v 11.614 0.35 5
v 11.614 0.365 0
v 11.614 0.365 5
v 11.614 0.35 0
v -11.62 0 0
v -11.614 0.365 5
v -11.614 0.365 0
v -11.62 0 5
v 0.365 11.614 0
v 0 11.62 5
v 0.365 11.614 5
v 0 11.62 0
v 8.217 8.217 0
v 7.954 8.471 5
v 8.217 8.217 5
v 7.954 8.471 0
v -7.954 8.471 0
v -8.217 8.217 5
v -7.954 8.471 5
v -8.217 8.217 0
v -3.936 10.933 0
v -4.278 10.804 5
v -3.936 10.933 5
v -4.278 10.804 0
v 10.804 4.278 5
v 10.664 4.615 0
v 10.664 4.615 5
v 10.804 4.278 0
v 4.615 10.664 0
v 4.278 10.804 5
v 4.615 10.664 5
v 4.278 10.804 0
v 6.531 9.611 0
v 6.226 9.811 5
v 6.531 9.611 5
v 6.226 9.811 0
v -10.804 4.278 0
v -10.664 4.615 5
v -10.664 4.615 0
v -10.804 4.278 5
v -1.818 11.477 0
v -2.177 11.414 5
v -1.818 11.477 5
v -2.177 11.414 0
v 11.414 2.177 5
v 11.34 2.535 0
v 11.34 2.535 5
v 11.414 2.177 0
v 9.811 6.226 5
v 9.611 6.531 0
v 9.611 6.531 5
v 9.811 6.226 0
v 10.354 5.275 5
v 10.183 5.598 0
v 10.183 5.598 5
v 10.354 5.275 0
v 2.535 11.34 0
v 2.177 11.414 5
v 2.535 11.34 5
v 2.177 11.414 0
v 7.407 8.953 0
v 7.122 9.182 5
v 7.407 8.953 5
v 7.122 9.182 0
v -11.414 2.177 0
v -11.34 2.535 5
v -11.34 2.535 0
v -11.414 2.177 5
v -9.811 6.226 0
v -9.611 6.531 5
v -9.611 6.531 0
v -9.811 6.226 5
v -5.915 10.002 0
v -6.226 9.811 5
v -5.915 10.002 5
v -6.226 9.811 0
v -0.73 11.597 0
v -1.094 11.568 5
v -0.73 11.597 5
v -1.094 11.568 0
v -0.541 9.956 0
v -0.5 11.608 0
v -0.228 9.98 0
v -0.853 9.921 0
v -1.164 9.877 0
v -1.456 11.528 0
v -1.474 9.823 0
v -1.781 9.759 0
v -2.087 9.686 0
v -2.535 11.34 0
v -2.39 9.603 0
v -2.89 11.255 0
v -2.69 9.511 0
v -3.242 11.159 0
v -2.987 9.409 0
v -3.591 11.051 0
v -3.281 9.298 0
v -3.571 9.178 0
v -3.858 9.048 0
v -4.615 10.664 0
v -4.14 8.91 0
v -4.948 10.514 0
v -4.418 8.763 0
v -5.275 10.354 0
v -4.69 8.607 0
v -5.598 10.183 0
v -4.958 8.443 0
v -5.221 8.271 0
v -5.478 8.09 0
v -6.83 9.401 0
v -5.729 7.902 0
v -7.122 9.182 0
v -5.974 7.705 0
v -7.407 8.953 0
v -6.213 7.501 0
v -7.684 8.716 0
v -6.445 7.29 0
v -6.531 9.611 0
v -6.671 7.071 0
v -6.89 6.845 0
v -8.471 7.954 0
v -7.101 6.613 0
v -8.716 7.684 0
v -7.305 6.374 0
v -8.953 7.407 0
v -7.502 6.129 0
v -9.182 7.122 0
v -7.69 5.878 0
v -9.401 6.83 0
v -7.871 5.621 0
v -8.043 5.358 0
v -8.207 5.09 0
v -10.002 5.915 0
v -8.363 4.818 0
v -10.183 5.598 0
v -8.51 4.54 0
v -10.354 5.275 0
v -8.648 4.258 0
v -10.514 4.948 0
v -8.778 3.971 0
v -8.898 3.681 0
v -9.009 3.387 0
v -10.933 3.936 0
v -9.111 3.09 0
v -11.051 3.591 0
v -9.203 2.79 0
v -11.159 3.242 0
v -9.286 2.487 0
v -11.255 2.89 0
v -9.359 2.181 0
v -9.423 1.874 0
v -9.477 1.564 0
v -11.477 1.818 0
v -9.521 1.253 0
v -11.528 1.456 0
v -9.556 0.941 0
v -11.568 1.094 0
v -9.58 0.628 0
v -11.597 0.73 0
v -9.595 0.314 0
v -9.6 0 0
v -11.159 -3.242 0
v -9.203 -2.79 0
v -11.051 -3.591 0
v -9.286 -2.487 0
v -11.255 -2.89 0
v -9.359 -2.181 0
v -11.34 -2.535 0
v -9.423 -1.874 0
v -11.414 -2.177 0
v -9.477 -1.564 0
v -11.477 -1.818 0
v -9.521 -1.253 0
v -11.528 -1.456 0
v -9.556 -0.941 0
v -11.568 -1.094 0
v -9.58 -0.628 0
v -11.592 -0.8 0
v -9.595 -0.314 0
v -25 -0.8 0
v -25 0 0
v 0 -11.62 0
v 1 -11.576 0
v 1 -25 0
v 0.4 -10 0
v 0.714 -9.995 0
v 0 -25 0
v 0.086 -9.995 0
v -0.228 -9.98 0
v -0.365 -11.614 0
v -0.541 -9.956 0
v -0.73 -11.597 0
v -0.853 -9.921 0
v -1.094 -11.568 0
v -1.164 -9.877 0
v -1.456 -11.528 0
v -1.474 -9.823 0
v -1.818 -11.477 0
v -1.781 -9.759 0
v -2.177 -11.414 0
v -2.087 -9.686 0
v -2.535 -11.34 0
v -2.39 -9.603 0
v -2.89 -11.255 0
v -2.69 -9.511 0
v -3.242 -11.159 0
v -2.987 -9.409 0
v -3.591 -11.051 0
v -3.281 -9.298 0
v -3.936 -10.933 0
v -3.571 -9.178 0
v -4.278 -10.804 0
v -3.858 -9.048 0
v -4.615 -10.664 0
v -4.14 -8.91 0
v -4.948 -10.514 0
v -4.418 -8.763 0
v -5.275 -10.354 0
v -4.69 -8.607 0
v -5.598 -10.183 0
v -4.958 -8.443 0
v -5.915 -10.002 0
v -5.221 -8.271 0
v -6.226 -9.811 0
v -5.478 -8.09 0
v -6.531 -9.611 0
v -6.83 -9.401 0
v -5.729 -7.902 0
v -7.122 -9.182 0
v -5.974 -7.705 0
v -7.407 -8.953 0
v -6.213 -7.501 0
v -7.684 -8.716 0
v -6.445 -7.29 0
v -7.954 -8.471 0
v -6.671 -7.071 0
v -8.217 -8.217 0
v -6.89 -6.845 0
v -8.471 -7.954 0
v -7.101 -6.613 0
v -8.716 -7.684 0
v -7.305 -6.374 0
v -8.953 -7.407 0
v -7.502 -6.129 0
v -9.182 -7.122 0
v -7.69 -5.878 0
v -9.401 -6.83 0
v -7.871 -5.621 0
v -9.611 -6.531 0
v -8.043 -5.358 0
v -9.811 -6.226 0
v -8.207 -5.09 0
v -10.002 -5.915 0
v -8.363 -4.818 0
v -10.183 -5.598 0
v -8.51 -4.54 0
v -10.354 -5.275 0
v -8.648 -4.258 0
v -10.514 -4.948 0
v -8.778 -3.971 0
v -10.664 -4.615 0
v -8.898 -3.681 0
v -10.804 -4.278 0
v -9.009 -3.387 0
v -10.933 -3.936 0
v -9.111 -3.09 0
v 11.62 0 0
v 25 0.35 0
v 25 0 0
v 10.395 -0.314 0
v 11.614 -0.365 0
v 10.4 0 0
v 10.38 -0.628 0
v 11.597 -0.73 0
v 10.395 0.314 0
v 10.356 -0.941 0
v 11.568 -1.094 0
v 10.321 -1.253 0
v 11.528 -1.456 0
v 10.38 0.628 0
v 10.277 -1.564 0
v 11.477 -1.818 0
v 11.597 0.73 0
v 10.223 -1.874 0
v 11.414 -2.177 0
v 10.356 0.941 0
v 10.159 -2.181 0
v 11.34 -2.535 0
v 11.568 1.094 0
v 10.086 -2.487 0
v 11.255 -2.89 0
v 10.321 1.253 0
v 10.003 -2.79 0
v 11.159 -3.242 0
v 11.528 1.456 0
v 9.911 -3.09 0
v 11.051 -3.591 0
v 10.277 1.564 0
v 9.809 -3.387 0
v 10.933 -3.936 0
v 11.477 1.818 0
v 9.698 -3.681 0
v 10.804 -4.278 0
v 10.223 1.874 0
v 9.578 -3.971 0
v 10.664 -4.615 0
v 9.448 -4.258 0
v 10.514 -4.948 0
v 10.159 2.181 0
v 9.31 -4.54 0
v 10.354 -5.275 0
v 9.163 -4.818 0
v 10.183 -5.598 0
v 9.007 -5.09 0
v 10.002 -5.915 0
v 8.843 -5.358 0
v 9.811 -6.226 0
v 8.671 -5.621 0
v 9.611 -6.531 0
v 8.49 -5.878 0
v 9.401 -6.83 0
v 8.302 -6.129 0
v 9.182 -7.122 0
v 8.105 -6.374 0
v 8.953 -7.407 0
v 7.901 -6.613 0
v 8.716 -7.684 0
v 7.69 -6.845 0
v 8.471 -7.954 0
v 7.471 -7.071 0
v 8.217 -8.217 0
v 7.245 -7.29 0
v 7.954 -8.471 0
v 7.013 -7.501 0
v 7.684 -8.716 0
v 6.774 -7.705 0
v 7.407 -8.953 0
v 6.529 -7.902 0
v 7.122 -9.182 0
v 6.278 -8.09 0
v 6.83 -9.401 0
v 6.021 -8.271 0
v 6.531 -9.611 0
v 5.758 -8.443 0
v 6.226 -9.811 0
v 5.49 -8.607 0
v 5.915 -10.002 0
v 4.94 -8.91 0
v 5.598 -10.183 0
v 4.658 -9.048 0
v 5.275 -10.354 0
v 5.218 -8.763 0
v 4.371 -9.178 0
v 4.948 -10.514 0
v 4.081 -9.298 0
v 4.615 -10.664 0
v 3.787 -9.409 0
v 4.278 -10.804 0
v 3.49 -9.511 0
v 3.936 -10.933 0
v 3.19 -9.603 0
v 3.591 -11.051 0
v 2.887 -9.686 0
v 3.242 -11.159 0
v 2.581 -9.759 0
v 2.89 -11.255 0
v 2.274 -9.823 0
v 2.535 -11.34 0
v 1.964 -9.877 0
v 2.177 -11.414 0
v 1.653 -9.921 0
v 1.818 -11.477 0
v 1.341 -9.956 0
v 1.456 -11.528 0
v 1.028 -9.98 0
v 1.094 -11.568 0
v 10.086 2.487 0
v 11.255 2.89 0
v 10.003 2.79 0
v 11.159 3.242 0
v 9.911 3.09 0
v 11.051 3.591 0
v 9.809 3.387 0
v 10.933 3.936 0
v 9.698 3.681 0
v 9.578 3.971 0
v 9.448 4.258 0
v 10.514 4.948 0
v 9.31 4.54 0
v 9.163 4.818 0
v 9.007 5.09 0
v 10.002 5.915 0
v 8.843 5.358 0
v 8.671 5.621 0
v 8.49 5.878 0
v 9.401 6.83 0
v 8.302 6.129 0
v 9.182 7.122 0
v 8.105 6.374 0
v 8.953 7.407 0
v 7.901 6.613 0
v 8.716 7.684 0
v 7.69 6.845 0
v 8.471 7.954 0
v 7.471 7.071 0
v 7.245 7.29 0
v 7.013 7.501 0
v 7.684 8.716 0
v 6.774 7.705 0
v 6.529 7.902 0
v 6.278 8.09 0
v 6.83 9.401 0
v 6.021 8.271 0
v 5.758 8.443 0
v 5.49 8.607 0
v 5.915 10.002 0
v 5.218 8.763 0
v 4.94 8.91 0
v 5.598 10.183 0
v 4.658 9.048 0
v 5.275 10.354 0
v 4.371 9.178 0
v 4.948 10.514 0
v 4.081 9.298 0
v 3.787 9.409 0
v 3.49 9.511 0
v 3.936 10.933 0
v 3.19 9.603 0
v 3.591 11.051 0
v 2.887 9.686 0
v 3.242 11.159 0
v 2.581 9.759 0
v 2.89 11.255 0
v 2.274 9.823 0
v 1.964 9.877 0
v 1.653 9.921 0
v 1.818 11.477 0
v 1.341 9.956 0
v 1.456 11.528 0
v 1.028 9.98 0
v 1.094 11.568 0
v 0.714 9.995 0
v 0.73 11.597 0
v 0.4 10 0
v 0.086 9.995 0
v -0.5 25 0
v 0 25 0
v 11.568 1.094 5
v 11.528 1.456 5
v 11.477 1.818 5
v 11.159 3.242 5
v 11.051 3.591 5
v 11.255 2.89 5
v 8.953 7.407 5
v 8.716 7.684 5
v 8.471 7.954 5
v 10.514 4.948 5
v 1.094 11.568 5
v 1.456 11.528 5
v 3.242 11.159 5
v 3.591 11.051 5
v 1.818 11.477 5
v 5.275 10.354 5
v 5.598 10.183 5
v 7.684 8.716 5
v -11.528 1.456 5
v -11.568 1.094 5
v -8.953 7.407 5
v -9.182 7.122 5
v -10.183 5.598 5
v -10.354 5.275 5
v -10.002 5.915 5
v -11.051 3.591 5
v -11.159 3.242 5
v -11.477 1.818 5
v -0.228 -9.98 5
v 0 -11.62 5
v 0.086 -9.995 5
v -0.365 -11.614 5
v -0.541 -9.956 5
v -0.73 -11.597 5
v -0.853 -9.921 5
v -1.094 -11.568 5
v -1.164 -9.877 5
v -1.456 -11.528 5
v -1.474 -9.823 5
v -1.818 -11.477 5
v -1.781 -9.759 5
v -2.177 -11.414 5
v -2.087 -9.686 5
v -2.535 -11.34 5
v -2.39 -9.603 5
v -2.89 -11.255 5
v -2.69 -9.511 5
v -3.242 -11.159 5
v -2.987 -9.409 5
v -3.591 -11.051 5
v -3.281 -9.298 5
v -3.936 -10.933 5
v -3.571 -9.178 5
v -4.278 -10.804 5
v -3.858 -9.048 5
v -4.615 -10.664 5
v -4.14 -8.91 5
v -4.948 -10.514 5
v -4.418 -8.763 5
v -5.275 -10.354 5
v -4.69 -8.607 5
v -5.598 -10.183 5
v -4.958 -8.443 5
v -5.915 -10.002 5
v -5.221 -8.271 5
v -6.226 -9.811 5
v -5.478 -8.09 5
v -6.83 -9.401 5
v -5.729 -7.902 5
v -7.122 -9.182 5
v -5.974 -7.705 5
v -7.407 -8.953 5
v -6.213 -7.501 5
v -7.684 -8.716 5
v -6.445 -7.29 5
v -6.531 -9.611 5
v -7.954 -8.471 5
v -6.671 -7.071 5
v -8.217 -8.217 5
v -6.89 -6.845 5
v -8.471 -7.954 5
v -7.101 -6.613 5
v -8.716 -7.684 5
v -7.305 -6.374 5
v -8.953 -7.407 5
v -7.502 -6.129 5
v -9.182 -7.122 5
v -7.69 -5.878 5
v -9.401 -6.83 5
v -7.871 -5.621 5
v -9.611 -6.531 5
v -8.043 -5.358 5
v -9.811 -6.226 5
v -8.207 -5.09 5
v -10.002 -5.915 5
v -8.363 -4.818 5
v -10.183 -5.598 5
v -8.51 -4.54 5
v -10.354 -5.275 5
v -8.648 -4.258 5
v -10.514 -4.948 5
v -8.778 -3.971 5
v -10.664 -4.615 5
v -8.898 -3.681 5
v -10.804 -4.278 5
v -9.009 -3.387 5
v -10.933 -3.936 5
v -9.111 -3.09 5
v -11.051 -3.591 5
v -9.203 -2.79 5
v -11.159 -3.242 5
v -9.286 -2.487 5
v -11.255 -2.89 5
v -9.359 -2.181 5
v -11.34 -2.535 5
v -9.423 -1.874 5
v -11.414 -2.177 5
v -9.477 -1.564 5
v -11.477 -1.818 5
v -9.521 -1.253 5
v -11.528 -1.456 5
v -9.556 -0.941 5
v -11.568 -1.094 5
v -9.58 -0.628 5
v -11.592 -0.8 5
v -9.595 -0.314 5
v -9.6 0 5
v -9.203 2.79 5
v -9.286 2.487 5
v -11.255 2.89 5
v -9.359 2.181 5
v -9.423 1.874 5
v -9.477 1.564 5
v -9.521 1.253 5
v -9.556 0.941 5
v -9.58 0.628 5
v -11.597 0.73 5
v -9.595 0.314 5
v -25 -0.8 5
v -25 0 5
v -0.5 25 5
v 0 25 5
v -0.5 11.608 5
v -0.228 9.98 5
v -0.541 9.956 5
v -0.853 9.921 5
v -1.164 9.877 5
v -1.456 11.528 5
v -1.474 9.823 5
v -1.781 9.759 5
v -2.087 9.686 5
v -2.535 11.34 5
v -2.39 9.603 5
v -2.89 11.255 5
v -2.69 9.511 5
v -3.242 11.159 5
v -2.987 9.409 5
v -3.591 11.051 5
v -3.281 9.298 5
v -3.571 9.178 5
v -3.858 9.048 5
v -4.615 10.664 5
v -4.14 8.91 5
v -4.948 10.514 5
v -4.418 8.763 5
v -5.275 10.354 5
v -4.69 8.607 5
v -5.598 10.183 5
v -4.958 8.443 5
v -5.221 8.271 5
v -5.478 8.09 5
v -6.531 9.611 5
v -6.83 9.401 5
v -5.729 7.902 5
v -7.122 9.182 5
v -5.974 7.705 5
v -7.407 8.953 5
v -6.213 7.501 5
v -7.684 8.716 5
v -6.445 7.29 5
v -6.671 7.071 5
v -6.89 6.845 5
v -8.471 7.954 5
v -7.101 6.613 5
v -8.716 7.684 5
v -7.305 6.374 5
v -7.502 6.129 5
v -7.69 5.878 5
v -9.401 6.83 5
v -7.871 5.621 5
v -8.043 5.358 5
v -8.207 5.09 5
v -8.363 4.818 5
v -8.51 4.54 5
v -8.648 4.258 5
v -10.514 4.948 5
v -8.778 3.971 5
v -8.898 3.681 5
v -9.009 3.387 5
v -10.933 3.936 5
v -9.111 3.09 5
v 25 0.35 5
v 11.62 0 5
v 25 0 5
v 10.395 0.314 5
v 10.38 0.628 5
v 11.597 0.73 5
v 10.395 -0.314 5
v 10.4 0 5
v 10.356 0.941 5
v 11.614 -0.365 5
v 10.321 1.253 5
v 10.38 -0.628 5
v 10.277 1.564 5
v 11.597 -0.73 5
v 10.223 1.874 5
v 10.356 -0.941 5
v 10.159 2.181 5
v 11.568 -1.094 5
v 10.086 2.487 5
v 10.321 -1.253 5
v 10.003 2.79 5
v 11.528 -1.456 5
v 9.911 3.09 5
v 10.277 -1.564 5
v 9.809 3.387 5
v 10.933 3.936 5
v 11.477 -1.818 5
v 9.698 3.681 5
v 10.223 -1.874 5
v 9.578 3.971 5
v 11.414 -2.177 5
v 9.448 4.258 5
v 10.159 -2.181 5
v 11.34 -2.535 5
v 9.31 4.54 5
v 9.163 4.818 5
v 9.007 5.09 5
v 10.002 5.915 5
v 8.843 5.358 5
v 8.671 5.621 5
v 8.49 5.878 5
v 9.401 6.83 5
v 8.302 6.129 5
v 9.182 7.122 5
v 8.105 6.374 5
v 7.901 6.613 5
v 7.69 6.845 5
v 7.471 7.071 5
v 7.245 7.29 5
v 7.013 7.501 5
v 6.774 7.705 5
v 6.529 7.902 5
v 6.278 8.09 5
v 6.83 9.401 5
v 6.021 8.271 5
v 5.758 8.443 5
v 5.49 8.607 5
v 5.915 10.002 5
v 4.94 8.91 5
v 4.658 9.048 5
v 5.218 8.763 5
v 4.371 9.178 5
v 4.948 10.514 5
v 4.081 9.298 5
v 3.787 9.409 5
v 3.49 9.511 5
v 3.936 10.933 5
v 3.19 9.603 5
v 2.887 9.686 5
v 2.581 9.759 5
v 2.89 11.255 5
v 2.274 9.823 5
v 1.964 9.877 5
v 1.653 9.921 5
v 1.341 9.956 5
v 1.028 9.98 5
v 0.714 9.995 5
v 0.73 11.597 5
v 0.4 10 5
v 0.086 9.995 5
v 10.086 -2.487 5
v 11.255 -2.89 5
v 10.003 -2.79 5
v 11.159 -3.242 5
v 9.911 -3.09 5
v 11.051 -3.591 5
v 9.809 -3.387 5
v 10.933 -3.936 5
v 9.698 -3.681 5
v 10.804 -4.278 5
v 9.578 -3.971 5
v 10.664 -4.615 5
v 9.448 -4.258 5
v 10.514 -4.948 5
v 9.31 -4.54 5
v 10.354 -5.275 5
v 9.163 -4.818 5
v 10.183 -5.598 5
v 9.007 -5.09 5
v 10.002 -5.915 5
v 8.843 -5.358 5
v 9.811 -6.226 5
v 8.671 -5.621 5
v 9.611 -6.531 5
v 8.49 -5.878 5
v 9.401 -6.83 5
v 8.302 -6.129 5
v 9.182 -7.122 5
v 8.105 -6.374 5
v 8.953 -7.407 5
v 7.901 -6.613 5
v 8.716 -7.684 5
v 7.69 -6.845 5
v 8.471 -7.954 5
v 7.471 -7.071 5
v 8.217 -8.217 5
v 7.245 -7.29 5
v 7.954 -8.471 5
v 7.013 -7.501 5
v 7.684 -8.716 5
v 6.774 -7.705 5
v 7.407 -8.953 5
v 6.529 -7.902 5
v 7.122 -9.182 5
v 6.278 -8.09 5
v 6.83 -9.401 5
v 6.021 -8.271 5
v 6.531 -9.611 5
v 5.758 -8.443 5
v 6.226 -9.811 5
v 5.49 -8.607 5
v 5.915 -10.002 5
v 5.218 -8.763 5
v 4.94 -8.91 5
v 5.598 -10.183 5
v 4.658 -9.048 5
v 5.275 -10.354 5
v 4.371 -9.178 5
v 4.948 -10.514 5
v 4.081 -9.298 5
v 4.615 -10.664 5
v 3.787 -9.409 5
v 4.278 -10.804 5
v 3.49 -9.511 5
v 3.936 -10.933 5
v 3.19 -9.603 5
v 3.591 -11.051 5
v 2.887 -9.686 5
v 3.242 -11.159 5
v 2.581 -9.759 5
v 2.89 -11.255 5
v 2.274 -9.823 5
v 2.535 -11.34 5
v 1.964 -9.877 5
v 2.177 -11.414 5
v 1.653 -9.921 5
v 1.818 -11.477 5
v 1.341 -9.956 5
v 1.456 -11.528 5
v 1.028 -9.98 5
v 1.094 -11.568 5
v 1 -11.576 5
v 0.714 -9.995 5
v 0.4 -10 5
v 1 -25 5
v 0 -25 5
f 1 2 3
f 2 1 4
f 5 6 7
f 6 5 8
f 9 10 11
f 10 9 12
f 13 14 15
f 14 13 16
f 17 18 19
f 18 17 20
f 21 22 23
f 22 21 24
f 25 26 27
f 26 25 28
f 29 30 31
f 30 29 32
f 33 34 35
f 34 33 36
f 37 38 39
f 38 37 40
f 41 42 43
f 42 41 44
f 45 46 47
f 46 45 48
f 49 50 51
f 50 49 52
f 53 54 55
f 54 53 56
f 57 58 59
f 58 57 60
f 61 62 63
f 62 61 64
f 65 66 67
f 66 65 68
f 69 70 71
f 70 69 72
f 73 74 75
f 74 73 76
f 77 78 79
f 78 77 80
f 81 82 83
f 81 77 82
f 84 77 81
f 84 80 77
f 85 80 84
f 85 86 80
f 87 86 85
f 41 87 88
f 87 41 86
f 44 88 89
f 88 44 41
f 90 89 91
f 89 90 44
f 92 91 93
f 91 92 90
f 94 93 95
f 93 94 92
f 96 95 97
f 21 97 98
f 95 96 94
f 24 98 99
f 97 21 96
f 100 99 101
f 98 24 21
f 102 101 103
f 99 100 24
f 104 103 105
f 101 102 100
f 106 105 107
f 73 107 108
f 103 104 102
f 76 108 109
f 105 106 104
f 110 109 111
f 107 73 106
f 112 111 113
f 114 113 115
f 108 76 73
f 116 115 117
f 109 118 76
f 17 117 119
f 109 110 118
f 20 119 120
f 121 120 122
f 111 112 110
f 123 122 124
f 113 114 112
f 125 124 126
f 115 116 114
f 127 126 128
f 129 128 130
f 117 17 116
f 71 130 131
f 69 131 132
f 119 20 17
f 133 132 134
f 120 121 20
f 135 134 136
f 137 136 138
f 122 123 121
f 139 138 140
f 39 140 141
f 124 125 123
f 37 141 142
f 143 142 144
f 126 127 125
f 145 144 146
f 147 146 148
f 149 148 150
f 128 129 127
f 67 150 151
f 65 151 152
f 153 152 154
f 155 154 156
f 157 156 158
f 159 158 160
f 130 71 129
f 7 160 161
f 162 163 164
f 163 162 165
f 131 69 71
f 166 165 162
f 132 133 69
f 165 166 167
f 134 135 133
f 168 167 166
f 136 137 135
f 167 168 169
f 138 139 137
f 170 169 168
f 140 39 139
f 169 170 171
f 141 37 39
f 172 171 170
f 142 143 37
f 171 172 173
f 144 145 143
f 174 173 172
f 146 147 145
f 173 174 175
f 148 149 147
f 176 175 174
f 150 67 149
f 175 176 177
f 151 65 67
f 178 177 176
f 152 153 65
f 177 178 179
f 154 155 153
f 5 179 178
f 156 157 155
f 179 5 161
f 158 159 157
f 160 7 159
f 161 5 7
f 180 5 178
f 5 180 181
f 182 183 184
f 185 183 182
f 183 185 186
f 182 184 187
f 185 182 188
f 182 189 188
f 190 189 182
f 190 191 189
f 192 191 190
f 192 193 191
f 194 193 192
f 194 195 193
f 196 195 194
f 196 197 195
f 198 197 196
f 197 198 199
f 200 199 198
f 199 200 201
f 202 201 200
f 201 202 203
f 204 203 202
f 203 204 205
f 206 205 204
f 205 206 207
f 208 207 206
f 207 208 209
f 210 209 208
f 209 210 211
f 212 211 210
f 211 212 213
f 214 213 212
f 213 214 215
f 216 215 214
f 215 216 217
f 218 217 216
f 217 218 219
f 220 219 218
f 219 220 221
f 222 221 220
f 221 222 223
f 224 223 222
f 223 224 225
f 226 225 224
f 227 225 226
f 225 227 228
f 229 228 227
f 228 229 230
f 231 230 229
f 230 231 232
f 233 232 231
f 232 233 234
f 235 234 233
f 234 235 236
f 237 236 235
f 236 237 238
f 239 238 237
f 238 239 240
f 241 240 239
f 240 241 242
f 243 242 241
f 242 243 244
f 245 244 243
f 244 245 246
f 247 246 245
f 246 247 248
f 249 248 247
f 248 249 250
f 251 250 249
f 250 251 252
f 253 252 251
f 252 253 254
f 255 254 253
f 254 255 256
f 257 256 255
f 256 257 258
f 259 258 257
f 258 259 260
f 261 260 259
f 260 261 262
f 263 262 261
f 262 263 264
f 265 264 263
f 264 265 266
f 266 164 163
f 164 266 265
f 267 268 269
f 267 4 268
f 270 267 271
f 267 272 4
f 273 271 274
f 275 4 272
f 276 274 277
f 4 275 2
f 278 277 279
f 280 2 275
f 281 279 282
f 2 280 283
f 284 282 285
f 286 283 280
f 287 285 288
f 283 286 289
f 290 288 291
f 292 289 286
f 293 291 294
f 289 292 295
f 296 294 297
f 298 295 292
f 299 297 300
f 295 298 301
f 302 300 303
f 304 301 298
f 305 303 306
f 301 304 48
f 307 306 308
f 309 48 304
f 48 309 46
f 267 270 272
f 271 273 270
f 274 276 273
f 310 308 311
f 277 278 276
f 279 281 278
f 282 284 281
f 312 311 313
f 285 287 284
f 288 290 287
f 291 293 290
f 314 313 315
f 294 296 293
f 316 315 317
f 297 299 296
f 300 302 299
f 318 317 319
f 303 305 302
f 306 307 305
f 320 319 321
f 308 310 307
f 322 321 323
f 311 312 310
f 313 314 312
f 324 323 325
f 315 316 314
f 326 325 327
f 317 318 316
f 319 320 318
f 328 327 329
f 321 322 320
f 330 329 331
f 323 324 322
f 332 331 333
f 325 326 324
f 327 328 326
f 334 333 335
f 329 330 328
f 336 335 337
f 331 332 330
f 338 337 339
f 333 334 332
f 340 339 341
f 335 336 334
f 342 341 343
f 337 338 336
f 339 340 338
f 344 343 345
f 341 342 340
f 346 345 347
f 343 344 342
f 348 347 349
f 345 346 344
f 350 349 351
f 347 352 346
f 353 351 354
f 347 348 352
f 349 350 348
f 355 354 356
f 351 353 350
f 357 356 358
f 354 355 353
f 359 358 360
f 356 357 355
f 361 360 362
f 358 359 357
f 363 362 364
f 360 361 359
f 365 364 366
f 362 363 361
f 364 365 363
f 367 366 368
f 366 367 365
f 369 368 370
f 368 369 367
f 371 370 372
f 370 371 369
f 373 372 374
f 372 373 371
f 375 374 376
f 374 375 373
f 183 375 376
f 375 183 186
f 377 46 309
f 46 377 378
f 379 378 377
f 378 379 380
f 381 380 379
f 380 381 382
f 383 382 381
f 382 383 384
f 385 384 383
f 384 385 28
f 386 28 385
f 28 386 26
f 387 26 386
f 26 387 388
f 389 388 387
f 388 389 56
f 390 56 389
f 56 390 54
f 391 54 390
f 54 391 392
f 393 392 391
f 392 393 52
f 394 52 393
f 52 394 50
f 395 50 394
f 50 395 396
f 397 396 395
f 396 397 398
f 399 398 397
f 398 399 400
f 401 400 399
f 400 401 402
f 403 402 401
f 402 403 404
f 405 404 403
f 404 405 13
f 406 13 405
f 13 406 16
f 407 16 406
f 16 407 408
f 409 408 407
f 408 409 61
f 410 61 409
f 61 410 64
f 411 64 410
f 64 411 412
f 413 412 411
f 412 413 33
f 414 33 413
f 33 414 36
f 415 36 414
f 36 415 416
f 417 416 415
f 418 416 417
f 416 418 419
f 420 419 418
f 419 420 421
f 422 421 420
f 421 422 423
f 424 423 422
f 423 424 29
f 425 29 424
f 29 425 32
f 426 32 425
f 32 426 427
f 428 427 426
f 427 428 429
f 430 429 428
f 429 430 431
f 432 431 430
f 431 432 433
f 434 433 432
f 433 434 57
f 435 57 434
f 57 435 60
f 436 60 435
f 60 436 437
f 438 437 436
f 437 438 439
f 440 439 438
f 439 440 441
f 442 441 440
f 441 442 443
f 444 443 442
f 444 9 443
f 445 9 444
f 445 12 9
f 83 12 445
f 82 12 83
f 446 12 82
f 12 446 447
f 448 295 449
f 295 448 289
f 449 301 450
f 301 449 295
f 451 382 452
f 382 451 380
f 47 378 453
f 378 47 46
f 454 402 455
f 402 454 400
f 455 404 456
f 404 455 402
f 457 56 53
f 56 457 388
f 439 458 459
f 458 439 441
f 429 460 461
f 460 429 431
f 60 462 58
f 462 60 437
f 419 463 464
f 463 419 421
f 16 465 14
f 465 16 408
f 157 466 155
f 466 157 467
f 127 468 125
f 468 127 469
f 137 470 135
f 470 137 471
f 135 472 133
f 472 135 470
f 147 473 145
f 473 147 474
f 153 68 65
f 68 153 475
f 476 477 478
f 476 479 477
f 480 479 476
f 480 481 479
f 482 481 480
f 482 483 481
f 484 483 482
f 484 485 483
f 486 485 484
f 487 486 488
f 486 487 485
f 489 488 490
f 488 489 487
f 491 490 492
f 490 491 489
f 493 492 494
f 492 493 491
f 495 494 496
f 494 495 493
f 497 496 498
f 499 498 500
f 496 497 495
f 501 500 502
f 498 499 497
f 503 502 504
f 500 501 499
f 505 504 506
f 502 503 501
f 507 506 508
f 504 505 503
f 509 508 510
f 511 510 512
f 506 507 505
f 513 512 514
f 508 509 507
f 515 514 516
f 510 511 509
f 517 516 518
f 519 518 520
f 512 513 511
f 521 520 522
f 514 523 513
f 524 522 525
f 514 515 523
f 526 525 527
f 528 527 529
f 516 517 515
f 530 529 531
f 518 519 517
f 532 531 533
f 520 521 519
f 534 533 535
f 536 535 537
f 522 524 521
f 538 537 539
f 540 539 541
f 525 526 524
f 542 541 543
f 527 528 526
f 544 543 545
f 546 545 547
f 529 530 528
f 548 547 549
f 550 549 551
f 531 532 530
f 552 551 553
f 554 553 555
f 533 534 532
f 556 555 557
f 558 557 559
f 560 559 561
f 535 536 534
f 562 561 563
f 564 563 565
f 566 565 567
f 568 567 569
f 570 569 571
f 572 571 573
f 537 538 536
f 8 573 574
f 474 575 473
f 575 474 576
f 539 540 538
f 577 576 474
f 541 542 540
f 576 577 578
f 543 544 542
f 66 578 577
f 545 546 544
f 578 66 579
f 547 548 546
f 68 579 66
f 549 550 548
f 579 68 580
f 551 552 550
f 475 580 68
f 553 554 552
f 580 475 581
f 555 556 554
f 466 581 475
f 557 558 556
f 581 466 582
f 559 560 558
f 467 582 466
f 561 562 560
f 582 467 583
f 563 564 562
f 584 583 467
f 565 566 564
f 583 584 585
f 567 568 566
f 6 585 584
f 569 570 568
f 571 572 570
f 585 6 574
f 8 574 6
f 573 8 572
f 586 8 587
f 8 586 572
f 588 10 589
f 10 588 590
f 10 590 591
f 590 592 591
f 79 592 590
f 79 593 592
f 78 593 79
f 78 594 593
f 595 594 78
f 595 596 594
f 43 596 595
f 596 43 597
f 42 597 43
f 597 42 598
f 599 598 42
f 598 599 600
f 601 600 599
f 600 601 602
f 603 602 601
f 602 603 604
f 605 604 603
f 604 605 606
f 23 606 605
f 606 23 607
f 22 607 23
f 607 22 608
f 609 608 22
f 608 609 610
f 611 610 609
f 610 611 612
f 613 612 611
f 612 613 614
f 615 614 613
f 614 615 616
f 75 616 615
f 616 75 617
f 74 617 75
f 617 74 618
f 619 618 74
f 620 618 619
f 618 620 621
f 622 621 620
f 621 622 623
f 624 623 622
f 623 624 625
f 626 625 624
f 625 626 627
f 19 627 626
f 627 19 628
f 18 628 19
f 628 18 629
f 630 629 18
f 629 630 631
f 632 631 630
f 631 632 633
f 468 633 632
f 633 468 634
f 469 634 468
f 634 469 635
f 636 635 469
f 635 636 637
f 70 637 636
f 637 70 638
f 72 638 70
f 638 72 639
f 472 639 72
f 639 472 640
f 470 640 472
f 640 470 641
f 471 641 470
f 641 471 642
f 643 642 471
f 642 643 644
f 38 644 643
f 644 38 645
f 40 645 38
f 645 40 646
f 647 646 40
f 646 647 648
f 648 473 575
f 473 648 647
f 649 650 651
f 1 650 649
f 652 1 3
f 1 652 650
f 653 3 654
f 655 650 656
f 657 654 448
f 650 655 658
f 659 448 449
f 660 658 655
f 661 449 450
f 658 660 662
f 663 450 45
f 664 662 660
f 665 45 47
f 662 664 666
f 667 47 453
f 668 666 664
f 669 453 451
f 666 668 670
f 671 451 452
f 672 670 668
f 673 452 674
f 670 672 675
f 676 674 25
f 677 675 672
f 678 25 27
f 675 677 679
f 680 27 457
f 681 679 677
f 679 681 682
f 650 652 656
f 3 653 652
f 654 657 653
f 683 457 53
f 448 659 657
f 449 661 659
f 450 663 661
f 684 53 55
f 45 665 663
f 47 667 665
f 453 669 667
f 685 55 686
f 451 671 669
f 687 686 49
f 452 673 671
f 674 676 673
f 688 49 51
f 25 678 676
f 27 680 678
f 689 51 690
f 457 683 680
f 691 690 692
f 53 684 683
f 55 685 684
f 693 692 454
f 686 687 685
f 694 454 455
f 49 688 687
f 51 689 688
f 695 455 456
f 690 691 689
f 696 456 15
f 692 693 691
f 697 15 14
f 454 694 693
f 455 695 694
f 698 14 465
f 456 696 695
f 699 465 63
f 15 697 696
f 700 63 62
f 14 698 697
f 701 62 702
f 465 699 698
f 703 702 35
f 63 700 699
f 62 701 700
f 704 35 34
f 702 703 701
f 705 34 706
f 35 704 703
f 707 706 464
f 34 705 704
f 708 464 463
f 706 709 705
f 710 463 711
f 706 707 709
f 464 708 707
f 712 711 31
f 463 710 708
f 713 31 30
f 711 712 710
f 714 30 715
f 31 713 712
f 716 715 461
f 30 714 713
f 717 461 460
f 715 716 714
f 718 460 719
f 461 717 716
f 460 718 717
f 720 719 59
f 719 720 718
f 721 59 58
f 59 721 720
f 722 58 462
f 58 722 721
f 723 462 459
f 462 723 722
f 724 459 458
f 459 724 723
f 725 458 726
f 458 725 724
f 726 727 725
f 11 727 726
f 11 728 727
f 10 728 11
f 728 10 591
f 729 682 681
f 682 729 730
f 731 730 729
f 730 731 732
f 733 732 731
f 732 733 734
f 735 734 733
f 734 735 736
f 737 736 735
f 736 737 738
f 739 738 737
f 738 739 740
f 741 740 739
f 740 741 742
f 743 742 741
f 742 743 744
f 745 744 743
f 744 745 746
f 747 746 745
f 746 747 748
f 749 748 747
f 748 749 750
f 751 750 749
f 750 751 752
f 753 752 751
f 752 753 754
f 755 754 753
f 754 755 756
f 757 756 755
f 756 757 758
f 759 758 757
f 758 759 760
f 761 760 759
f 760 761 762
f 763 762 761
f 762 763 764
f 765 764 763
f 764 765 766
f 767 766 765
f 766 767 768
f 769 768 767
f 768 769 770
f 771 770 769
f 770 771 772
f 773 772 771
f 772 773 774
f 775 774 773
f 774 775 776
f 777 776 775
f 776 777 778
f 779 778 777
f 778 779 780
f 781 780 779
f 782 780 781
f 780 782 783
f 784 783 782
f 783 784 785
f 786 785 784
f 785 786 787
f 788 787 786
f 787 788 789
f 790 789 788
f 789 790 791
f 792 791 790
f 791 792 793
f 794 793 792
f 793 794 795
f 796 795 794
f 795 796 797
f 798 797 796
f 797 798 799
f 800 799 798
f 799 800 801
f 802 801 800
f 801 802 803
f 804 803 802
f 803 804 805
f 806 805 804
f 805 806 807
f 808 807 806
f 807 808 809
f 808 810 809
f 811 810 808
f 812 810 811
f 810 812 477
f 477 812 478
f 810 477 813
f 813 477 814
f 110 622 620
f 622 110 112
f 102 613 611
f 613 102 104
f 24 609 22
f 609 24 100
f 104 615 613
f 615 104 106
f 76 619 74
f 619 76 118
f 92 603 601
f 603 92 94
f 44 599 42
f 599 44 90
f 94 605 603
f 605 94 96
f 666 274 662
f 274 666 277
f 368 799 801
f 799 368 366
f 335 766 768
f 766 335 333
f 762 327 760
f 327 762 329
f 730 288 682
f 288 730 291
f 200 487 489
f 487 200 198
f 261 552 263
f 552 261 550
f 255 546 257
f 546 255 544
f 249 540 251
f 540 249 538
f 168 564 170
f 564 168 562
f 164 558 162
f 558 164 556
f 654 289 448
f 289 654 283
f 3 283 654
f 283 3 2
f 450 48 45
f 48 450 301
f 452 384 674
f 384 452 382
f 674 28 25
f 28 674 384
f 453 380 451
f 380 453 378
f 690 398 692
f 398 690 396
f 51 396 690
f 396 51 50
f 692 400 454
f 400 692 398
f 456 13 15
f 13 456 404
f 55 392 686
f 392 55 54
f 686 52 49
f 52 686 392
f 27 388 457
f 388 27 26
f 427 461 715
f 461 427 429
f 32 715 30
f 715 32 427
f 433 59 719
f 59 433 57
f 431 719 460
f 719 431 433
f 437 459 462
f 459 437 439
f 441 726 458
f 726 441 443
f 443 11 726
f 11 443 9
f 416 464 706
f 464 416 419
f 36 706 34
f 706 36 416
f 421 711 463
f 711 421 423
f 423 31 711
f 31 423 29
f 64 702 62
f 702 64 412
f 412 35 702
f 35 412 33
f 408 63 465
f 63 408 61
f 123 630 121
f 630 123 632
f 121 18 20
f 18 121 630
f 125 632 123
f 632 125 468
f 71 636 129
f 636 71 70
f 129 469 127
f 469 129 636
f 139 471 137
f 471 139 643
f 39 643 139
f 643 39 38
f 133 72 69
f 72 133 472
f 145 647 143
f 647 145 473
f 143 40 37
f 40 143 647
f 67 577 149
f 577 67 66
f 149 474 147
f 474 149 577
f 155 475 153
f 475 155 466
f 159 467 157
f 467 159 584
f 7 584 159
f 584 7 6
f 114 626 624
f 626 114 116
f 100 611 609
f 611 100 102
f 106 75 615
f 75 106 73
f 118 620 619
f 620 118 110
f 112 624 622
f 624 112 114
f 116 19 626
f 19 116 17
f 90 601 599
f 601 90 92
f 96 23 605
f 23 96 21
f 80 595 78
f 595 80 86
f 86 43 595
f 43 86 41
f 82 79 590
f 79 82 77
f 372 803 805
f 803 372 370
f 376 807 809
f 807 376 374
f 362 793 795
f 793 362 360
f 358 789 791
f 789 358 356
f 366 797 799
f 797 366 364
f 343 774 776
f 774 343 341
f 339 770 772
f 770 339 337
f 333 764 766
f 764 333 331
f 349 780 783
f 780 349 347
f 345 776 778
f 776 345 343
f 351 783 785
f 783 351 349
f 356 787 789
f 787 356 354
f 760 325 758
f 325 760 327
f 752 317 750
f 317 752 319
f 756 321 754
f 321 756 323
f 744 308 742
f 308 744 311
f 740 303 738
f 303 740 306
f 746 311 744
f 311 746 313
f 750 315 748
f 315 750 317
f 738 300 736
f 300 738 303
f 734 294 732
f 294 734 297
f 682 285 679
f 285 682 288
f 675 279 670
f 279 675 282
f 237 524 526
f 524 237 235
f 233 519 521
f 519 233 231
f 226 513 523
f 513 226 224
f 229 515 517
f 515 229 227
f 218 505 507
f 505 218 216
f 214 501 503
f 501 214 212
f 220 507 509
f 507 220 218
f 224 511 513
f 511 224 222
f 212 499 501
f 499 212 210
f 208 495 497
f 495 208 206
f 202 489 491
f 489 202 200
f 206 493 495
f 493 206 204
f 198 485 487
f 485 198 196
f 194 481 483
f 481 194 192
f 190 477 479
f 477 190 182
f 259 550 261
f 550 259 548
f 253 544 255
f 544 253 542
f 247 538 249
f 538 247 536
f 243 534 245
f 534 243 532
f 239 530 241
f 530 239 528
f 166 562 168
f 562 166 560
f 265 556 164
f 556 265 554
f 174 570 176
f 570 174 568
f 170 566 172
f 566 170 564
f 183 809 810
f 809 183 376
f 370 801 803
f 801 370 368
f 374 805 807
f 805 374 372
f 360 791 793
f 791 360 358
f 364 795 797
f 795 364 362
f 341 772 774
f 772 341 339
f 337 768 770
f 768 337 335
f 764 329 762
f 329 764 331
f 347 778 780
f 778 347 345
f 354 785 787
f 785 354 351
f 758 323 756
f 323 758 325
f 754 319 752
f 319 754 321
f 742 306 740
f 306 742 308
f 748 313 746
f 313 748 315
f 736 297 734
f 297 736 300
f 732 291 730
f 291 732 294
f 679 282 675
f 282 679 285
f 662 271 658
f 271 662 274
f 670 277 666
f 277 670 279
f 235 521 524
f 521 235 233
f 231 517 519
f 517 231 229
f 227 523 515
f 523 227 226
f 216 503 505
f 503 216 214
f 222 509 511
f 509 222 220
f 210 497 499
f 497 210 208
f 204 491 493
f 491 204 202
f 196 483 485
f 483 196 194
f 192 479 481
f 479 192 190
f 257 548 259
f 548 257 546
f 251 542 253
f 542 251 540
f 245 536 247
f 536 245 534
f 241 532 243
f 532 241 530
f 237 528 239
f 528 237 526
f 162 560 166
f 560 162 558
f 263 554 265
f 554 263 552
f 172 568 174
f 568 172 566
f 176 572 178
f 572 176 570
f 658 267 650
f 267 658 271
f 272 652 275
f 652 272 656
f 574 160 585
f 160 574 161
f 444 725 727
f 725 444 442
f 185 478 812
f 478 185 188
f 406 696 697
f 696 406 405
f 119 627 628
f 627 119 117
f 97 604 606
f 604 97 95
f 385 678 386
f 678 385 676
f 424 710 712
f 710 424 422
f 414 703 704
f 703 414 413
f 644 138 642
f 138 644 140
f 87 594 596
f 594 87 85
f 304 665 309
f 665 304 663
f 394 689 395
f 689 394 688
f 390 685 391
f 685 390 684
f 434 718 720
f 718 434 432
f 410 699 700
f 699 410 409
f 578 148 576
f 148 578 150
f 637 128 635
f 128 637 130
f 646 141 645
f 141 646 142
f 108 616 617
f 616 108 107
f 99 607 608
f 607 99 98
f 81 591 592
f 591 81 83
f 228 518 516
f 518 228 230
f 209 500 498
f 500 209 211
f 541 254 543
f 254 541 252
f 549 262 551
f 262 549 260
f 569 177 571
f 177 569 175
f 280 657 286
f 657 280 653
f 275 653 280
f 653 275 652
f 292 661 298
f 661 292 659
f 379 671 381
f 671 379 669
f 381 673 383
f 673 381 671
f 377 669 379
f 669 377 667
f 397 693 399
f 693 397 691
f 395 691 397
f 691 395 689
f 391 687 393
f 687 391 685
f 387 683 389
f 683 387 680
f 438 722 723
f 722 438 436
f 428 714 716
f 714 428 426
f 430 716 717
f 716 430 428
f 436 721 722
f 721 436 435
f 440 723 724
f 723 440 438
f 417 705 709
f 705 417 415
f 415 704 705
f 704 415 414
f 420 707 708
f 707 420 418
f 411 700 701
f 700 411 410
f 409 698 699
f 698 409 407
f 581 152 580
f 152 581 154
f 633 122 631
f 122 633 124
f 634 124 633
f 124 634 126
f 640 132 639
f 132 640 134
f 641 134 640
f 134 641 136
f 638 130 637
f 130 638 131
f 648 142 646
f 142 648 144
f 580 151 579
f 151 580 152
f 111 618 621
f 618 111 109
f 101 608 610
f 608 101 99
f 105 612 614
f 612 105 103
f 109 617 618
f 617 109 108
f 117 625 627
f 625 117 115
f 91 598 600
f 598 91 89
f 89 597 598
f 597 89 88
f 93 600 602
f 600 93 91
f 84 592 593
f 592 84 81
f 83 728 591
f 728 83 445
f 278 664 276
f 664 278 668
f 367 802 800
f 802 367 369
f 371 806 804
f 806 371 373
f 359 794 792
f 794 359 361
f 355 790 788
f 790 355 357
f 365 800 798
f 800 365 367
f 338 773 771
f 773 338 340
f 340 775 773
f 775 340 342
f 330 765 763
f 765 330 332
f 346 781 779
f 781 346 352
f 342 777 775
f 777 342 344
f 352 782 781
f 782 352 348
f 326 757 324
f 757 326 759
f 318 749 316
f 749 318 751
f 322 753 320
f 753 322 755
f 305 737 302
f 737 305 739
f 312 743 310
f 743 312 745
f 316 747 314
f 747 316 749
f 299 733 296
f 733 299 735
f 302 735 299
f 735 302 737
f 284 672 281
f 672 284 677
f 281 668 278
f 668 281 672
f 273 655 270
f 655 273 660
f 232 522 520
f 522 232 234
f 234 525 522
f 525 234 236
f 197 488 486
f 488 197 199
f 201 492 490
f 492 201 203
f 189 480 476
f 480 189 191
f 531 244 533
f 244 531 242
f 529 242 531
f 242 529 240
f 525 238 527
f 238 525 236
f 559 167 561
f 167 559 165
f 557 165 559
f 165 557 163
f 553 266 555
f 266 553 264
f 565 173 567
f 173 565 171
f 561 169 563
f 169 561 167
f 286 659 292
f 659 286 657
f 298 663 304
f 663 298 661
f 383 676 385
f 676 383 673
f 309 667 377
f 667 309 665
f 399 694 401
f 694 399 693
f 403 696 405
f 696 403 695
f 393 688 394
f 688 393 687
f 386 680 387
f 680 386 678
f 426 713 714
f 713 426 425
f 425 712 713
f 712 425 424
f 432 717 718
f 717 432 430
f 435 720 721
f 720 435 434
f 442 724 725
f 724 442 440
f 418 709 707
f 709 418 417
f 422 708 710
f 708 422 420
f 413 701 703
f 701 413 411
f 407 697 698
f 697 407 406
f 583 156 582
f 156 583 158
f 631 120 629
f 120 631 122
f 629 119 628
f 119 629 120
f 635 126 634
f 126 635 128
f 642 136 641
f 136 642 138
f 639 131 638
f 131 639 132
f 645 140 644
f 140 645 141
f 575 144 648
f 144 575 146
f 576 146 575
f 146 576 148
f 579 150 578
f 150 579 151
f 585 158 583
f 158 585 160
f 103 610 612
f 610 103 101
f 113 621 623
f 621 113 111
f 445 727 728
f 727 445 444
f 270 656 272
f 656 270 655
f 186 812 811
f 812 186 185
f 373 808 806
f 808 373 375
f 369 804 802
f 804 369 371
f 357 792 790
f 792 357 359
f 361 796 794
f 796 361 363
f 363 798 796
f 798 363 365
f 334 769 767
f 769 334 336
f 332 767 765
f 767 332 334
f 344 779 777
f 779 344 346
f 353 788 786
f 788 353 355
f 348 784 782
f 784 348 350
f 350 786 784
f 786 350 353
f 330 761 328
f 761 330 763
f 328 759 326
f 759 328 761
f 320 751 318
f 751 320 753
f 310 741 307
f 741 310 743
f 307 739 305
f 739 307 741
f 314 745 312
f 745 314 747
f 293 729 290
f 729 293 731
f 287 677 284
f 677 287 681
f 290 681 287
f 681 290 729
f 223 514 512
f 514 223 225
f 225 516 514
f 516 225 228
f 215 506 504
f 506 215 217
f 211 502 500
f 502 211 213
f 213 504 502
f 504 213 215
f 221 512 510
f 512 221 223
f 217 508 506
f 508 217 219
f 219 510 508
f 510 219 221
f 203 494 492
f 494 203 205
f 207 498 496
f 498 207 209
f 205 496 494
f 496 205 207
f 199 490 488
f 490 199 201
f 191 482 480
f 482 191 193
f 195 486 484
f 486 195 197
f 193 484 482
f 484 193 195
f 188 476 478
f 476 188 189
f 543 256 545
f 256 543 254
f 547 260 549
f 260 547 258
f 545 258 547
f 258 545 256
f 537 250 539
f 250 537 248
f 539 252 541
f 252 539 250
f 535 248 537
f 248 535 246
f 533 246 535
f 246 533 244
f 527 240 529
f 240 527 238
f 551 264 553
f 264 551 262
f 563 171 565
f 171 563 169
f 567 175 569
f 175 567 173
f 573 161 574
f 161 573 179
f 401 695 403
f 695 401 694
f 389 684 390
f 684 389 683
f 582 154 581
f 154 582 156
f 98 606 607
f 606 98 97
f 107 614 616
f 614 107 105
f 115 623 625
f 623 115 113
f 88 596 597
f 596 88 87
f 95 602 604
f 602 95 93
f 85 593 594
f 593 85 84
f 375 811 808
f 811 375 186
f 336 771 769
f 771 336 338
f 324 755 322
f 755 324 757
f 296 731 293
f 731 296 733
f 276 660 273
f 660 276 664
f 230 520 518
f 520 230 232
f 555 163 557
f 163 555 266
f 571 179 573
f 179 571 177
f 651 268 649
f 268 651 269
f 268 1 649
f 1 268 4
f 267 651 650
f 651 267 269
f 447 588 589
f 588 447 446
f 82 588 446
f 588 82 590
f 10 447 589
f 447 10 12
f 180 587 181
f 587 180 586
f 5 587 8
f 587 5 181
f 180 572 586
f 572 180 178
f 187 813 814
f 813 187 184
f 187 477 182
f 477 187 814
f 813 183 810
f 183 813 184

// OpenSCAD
// 5@xes Thin Part Test
// Thichness 
//   - 0.35
//   - 0.5
//   - 0.8
//   - 1

$fn=200;

union () {
    translate([11,0,0]) cube([14,0.35,5], center = false);
    translate([0,11,0]) rotate(90, [0,0,1]) cube([14,0.5,5], center = false);
    translate([-11,0,0]) rotate(180, [0,0,1]) cube([14,0.8,5], center = false);
    translate([0,-11,0]) rotate(-90, [0,0,1]) cube([14,1,5], center = false);
    difference() {
        cylinder(r=11.62, h=5);
        translate([0.4,0,-1]) cylinder(r=10, h=10);
    }
}
